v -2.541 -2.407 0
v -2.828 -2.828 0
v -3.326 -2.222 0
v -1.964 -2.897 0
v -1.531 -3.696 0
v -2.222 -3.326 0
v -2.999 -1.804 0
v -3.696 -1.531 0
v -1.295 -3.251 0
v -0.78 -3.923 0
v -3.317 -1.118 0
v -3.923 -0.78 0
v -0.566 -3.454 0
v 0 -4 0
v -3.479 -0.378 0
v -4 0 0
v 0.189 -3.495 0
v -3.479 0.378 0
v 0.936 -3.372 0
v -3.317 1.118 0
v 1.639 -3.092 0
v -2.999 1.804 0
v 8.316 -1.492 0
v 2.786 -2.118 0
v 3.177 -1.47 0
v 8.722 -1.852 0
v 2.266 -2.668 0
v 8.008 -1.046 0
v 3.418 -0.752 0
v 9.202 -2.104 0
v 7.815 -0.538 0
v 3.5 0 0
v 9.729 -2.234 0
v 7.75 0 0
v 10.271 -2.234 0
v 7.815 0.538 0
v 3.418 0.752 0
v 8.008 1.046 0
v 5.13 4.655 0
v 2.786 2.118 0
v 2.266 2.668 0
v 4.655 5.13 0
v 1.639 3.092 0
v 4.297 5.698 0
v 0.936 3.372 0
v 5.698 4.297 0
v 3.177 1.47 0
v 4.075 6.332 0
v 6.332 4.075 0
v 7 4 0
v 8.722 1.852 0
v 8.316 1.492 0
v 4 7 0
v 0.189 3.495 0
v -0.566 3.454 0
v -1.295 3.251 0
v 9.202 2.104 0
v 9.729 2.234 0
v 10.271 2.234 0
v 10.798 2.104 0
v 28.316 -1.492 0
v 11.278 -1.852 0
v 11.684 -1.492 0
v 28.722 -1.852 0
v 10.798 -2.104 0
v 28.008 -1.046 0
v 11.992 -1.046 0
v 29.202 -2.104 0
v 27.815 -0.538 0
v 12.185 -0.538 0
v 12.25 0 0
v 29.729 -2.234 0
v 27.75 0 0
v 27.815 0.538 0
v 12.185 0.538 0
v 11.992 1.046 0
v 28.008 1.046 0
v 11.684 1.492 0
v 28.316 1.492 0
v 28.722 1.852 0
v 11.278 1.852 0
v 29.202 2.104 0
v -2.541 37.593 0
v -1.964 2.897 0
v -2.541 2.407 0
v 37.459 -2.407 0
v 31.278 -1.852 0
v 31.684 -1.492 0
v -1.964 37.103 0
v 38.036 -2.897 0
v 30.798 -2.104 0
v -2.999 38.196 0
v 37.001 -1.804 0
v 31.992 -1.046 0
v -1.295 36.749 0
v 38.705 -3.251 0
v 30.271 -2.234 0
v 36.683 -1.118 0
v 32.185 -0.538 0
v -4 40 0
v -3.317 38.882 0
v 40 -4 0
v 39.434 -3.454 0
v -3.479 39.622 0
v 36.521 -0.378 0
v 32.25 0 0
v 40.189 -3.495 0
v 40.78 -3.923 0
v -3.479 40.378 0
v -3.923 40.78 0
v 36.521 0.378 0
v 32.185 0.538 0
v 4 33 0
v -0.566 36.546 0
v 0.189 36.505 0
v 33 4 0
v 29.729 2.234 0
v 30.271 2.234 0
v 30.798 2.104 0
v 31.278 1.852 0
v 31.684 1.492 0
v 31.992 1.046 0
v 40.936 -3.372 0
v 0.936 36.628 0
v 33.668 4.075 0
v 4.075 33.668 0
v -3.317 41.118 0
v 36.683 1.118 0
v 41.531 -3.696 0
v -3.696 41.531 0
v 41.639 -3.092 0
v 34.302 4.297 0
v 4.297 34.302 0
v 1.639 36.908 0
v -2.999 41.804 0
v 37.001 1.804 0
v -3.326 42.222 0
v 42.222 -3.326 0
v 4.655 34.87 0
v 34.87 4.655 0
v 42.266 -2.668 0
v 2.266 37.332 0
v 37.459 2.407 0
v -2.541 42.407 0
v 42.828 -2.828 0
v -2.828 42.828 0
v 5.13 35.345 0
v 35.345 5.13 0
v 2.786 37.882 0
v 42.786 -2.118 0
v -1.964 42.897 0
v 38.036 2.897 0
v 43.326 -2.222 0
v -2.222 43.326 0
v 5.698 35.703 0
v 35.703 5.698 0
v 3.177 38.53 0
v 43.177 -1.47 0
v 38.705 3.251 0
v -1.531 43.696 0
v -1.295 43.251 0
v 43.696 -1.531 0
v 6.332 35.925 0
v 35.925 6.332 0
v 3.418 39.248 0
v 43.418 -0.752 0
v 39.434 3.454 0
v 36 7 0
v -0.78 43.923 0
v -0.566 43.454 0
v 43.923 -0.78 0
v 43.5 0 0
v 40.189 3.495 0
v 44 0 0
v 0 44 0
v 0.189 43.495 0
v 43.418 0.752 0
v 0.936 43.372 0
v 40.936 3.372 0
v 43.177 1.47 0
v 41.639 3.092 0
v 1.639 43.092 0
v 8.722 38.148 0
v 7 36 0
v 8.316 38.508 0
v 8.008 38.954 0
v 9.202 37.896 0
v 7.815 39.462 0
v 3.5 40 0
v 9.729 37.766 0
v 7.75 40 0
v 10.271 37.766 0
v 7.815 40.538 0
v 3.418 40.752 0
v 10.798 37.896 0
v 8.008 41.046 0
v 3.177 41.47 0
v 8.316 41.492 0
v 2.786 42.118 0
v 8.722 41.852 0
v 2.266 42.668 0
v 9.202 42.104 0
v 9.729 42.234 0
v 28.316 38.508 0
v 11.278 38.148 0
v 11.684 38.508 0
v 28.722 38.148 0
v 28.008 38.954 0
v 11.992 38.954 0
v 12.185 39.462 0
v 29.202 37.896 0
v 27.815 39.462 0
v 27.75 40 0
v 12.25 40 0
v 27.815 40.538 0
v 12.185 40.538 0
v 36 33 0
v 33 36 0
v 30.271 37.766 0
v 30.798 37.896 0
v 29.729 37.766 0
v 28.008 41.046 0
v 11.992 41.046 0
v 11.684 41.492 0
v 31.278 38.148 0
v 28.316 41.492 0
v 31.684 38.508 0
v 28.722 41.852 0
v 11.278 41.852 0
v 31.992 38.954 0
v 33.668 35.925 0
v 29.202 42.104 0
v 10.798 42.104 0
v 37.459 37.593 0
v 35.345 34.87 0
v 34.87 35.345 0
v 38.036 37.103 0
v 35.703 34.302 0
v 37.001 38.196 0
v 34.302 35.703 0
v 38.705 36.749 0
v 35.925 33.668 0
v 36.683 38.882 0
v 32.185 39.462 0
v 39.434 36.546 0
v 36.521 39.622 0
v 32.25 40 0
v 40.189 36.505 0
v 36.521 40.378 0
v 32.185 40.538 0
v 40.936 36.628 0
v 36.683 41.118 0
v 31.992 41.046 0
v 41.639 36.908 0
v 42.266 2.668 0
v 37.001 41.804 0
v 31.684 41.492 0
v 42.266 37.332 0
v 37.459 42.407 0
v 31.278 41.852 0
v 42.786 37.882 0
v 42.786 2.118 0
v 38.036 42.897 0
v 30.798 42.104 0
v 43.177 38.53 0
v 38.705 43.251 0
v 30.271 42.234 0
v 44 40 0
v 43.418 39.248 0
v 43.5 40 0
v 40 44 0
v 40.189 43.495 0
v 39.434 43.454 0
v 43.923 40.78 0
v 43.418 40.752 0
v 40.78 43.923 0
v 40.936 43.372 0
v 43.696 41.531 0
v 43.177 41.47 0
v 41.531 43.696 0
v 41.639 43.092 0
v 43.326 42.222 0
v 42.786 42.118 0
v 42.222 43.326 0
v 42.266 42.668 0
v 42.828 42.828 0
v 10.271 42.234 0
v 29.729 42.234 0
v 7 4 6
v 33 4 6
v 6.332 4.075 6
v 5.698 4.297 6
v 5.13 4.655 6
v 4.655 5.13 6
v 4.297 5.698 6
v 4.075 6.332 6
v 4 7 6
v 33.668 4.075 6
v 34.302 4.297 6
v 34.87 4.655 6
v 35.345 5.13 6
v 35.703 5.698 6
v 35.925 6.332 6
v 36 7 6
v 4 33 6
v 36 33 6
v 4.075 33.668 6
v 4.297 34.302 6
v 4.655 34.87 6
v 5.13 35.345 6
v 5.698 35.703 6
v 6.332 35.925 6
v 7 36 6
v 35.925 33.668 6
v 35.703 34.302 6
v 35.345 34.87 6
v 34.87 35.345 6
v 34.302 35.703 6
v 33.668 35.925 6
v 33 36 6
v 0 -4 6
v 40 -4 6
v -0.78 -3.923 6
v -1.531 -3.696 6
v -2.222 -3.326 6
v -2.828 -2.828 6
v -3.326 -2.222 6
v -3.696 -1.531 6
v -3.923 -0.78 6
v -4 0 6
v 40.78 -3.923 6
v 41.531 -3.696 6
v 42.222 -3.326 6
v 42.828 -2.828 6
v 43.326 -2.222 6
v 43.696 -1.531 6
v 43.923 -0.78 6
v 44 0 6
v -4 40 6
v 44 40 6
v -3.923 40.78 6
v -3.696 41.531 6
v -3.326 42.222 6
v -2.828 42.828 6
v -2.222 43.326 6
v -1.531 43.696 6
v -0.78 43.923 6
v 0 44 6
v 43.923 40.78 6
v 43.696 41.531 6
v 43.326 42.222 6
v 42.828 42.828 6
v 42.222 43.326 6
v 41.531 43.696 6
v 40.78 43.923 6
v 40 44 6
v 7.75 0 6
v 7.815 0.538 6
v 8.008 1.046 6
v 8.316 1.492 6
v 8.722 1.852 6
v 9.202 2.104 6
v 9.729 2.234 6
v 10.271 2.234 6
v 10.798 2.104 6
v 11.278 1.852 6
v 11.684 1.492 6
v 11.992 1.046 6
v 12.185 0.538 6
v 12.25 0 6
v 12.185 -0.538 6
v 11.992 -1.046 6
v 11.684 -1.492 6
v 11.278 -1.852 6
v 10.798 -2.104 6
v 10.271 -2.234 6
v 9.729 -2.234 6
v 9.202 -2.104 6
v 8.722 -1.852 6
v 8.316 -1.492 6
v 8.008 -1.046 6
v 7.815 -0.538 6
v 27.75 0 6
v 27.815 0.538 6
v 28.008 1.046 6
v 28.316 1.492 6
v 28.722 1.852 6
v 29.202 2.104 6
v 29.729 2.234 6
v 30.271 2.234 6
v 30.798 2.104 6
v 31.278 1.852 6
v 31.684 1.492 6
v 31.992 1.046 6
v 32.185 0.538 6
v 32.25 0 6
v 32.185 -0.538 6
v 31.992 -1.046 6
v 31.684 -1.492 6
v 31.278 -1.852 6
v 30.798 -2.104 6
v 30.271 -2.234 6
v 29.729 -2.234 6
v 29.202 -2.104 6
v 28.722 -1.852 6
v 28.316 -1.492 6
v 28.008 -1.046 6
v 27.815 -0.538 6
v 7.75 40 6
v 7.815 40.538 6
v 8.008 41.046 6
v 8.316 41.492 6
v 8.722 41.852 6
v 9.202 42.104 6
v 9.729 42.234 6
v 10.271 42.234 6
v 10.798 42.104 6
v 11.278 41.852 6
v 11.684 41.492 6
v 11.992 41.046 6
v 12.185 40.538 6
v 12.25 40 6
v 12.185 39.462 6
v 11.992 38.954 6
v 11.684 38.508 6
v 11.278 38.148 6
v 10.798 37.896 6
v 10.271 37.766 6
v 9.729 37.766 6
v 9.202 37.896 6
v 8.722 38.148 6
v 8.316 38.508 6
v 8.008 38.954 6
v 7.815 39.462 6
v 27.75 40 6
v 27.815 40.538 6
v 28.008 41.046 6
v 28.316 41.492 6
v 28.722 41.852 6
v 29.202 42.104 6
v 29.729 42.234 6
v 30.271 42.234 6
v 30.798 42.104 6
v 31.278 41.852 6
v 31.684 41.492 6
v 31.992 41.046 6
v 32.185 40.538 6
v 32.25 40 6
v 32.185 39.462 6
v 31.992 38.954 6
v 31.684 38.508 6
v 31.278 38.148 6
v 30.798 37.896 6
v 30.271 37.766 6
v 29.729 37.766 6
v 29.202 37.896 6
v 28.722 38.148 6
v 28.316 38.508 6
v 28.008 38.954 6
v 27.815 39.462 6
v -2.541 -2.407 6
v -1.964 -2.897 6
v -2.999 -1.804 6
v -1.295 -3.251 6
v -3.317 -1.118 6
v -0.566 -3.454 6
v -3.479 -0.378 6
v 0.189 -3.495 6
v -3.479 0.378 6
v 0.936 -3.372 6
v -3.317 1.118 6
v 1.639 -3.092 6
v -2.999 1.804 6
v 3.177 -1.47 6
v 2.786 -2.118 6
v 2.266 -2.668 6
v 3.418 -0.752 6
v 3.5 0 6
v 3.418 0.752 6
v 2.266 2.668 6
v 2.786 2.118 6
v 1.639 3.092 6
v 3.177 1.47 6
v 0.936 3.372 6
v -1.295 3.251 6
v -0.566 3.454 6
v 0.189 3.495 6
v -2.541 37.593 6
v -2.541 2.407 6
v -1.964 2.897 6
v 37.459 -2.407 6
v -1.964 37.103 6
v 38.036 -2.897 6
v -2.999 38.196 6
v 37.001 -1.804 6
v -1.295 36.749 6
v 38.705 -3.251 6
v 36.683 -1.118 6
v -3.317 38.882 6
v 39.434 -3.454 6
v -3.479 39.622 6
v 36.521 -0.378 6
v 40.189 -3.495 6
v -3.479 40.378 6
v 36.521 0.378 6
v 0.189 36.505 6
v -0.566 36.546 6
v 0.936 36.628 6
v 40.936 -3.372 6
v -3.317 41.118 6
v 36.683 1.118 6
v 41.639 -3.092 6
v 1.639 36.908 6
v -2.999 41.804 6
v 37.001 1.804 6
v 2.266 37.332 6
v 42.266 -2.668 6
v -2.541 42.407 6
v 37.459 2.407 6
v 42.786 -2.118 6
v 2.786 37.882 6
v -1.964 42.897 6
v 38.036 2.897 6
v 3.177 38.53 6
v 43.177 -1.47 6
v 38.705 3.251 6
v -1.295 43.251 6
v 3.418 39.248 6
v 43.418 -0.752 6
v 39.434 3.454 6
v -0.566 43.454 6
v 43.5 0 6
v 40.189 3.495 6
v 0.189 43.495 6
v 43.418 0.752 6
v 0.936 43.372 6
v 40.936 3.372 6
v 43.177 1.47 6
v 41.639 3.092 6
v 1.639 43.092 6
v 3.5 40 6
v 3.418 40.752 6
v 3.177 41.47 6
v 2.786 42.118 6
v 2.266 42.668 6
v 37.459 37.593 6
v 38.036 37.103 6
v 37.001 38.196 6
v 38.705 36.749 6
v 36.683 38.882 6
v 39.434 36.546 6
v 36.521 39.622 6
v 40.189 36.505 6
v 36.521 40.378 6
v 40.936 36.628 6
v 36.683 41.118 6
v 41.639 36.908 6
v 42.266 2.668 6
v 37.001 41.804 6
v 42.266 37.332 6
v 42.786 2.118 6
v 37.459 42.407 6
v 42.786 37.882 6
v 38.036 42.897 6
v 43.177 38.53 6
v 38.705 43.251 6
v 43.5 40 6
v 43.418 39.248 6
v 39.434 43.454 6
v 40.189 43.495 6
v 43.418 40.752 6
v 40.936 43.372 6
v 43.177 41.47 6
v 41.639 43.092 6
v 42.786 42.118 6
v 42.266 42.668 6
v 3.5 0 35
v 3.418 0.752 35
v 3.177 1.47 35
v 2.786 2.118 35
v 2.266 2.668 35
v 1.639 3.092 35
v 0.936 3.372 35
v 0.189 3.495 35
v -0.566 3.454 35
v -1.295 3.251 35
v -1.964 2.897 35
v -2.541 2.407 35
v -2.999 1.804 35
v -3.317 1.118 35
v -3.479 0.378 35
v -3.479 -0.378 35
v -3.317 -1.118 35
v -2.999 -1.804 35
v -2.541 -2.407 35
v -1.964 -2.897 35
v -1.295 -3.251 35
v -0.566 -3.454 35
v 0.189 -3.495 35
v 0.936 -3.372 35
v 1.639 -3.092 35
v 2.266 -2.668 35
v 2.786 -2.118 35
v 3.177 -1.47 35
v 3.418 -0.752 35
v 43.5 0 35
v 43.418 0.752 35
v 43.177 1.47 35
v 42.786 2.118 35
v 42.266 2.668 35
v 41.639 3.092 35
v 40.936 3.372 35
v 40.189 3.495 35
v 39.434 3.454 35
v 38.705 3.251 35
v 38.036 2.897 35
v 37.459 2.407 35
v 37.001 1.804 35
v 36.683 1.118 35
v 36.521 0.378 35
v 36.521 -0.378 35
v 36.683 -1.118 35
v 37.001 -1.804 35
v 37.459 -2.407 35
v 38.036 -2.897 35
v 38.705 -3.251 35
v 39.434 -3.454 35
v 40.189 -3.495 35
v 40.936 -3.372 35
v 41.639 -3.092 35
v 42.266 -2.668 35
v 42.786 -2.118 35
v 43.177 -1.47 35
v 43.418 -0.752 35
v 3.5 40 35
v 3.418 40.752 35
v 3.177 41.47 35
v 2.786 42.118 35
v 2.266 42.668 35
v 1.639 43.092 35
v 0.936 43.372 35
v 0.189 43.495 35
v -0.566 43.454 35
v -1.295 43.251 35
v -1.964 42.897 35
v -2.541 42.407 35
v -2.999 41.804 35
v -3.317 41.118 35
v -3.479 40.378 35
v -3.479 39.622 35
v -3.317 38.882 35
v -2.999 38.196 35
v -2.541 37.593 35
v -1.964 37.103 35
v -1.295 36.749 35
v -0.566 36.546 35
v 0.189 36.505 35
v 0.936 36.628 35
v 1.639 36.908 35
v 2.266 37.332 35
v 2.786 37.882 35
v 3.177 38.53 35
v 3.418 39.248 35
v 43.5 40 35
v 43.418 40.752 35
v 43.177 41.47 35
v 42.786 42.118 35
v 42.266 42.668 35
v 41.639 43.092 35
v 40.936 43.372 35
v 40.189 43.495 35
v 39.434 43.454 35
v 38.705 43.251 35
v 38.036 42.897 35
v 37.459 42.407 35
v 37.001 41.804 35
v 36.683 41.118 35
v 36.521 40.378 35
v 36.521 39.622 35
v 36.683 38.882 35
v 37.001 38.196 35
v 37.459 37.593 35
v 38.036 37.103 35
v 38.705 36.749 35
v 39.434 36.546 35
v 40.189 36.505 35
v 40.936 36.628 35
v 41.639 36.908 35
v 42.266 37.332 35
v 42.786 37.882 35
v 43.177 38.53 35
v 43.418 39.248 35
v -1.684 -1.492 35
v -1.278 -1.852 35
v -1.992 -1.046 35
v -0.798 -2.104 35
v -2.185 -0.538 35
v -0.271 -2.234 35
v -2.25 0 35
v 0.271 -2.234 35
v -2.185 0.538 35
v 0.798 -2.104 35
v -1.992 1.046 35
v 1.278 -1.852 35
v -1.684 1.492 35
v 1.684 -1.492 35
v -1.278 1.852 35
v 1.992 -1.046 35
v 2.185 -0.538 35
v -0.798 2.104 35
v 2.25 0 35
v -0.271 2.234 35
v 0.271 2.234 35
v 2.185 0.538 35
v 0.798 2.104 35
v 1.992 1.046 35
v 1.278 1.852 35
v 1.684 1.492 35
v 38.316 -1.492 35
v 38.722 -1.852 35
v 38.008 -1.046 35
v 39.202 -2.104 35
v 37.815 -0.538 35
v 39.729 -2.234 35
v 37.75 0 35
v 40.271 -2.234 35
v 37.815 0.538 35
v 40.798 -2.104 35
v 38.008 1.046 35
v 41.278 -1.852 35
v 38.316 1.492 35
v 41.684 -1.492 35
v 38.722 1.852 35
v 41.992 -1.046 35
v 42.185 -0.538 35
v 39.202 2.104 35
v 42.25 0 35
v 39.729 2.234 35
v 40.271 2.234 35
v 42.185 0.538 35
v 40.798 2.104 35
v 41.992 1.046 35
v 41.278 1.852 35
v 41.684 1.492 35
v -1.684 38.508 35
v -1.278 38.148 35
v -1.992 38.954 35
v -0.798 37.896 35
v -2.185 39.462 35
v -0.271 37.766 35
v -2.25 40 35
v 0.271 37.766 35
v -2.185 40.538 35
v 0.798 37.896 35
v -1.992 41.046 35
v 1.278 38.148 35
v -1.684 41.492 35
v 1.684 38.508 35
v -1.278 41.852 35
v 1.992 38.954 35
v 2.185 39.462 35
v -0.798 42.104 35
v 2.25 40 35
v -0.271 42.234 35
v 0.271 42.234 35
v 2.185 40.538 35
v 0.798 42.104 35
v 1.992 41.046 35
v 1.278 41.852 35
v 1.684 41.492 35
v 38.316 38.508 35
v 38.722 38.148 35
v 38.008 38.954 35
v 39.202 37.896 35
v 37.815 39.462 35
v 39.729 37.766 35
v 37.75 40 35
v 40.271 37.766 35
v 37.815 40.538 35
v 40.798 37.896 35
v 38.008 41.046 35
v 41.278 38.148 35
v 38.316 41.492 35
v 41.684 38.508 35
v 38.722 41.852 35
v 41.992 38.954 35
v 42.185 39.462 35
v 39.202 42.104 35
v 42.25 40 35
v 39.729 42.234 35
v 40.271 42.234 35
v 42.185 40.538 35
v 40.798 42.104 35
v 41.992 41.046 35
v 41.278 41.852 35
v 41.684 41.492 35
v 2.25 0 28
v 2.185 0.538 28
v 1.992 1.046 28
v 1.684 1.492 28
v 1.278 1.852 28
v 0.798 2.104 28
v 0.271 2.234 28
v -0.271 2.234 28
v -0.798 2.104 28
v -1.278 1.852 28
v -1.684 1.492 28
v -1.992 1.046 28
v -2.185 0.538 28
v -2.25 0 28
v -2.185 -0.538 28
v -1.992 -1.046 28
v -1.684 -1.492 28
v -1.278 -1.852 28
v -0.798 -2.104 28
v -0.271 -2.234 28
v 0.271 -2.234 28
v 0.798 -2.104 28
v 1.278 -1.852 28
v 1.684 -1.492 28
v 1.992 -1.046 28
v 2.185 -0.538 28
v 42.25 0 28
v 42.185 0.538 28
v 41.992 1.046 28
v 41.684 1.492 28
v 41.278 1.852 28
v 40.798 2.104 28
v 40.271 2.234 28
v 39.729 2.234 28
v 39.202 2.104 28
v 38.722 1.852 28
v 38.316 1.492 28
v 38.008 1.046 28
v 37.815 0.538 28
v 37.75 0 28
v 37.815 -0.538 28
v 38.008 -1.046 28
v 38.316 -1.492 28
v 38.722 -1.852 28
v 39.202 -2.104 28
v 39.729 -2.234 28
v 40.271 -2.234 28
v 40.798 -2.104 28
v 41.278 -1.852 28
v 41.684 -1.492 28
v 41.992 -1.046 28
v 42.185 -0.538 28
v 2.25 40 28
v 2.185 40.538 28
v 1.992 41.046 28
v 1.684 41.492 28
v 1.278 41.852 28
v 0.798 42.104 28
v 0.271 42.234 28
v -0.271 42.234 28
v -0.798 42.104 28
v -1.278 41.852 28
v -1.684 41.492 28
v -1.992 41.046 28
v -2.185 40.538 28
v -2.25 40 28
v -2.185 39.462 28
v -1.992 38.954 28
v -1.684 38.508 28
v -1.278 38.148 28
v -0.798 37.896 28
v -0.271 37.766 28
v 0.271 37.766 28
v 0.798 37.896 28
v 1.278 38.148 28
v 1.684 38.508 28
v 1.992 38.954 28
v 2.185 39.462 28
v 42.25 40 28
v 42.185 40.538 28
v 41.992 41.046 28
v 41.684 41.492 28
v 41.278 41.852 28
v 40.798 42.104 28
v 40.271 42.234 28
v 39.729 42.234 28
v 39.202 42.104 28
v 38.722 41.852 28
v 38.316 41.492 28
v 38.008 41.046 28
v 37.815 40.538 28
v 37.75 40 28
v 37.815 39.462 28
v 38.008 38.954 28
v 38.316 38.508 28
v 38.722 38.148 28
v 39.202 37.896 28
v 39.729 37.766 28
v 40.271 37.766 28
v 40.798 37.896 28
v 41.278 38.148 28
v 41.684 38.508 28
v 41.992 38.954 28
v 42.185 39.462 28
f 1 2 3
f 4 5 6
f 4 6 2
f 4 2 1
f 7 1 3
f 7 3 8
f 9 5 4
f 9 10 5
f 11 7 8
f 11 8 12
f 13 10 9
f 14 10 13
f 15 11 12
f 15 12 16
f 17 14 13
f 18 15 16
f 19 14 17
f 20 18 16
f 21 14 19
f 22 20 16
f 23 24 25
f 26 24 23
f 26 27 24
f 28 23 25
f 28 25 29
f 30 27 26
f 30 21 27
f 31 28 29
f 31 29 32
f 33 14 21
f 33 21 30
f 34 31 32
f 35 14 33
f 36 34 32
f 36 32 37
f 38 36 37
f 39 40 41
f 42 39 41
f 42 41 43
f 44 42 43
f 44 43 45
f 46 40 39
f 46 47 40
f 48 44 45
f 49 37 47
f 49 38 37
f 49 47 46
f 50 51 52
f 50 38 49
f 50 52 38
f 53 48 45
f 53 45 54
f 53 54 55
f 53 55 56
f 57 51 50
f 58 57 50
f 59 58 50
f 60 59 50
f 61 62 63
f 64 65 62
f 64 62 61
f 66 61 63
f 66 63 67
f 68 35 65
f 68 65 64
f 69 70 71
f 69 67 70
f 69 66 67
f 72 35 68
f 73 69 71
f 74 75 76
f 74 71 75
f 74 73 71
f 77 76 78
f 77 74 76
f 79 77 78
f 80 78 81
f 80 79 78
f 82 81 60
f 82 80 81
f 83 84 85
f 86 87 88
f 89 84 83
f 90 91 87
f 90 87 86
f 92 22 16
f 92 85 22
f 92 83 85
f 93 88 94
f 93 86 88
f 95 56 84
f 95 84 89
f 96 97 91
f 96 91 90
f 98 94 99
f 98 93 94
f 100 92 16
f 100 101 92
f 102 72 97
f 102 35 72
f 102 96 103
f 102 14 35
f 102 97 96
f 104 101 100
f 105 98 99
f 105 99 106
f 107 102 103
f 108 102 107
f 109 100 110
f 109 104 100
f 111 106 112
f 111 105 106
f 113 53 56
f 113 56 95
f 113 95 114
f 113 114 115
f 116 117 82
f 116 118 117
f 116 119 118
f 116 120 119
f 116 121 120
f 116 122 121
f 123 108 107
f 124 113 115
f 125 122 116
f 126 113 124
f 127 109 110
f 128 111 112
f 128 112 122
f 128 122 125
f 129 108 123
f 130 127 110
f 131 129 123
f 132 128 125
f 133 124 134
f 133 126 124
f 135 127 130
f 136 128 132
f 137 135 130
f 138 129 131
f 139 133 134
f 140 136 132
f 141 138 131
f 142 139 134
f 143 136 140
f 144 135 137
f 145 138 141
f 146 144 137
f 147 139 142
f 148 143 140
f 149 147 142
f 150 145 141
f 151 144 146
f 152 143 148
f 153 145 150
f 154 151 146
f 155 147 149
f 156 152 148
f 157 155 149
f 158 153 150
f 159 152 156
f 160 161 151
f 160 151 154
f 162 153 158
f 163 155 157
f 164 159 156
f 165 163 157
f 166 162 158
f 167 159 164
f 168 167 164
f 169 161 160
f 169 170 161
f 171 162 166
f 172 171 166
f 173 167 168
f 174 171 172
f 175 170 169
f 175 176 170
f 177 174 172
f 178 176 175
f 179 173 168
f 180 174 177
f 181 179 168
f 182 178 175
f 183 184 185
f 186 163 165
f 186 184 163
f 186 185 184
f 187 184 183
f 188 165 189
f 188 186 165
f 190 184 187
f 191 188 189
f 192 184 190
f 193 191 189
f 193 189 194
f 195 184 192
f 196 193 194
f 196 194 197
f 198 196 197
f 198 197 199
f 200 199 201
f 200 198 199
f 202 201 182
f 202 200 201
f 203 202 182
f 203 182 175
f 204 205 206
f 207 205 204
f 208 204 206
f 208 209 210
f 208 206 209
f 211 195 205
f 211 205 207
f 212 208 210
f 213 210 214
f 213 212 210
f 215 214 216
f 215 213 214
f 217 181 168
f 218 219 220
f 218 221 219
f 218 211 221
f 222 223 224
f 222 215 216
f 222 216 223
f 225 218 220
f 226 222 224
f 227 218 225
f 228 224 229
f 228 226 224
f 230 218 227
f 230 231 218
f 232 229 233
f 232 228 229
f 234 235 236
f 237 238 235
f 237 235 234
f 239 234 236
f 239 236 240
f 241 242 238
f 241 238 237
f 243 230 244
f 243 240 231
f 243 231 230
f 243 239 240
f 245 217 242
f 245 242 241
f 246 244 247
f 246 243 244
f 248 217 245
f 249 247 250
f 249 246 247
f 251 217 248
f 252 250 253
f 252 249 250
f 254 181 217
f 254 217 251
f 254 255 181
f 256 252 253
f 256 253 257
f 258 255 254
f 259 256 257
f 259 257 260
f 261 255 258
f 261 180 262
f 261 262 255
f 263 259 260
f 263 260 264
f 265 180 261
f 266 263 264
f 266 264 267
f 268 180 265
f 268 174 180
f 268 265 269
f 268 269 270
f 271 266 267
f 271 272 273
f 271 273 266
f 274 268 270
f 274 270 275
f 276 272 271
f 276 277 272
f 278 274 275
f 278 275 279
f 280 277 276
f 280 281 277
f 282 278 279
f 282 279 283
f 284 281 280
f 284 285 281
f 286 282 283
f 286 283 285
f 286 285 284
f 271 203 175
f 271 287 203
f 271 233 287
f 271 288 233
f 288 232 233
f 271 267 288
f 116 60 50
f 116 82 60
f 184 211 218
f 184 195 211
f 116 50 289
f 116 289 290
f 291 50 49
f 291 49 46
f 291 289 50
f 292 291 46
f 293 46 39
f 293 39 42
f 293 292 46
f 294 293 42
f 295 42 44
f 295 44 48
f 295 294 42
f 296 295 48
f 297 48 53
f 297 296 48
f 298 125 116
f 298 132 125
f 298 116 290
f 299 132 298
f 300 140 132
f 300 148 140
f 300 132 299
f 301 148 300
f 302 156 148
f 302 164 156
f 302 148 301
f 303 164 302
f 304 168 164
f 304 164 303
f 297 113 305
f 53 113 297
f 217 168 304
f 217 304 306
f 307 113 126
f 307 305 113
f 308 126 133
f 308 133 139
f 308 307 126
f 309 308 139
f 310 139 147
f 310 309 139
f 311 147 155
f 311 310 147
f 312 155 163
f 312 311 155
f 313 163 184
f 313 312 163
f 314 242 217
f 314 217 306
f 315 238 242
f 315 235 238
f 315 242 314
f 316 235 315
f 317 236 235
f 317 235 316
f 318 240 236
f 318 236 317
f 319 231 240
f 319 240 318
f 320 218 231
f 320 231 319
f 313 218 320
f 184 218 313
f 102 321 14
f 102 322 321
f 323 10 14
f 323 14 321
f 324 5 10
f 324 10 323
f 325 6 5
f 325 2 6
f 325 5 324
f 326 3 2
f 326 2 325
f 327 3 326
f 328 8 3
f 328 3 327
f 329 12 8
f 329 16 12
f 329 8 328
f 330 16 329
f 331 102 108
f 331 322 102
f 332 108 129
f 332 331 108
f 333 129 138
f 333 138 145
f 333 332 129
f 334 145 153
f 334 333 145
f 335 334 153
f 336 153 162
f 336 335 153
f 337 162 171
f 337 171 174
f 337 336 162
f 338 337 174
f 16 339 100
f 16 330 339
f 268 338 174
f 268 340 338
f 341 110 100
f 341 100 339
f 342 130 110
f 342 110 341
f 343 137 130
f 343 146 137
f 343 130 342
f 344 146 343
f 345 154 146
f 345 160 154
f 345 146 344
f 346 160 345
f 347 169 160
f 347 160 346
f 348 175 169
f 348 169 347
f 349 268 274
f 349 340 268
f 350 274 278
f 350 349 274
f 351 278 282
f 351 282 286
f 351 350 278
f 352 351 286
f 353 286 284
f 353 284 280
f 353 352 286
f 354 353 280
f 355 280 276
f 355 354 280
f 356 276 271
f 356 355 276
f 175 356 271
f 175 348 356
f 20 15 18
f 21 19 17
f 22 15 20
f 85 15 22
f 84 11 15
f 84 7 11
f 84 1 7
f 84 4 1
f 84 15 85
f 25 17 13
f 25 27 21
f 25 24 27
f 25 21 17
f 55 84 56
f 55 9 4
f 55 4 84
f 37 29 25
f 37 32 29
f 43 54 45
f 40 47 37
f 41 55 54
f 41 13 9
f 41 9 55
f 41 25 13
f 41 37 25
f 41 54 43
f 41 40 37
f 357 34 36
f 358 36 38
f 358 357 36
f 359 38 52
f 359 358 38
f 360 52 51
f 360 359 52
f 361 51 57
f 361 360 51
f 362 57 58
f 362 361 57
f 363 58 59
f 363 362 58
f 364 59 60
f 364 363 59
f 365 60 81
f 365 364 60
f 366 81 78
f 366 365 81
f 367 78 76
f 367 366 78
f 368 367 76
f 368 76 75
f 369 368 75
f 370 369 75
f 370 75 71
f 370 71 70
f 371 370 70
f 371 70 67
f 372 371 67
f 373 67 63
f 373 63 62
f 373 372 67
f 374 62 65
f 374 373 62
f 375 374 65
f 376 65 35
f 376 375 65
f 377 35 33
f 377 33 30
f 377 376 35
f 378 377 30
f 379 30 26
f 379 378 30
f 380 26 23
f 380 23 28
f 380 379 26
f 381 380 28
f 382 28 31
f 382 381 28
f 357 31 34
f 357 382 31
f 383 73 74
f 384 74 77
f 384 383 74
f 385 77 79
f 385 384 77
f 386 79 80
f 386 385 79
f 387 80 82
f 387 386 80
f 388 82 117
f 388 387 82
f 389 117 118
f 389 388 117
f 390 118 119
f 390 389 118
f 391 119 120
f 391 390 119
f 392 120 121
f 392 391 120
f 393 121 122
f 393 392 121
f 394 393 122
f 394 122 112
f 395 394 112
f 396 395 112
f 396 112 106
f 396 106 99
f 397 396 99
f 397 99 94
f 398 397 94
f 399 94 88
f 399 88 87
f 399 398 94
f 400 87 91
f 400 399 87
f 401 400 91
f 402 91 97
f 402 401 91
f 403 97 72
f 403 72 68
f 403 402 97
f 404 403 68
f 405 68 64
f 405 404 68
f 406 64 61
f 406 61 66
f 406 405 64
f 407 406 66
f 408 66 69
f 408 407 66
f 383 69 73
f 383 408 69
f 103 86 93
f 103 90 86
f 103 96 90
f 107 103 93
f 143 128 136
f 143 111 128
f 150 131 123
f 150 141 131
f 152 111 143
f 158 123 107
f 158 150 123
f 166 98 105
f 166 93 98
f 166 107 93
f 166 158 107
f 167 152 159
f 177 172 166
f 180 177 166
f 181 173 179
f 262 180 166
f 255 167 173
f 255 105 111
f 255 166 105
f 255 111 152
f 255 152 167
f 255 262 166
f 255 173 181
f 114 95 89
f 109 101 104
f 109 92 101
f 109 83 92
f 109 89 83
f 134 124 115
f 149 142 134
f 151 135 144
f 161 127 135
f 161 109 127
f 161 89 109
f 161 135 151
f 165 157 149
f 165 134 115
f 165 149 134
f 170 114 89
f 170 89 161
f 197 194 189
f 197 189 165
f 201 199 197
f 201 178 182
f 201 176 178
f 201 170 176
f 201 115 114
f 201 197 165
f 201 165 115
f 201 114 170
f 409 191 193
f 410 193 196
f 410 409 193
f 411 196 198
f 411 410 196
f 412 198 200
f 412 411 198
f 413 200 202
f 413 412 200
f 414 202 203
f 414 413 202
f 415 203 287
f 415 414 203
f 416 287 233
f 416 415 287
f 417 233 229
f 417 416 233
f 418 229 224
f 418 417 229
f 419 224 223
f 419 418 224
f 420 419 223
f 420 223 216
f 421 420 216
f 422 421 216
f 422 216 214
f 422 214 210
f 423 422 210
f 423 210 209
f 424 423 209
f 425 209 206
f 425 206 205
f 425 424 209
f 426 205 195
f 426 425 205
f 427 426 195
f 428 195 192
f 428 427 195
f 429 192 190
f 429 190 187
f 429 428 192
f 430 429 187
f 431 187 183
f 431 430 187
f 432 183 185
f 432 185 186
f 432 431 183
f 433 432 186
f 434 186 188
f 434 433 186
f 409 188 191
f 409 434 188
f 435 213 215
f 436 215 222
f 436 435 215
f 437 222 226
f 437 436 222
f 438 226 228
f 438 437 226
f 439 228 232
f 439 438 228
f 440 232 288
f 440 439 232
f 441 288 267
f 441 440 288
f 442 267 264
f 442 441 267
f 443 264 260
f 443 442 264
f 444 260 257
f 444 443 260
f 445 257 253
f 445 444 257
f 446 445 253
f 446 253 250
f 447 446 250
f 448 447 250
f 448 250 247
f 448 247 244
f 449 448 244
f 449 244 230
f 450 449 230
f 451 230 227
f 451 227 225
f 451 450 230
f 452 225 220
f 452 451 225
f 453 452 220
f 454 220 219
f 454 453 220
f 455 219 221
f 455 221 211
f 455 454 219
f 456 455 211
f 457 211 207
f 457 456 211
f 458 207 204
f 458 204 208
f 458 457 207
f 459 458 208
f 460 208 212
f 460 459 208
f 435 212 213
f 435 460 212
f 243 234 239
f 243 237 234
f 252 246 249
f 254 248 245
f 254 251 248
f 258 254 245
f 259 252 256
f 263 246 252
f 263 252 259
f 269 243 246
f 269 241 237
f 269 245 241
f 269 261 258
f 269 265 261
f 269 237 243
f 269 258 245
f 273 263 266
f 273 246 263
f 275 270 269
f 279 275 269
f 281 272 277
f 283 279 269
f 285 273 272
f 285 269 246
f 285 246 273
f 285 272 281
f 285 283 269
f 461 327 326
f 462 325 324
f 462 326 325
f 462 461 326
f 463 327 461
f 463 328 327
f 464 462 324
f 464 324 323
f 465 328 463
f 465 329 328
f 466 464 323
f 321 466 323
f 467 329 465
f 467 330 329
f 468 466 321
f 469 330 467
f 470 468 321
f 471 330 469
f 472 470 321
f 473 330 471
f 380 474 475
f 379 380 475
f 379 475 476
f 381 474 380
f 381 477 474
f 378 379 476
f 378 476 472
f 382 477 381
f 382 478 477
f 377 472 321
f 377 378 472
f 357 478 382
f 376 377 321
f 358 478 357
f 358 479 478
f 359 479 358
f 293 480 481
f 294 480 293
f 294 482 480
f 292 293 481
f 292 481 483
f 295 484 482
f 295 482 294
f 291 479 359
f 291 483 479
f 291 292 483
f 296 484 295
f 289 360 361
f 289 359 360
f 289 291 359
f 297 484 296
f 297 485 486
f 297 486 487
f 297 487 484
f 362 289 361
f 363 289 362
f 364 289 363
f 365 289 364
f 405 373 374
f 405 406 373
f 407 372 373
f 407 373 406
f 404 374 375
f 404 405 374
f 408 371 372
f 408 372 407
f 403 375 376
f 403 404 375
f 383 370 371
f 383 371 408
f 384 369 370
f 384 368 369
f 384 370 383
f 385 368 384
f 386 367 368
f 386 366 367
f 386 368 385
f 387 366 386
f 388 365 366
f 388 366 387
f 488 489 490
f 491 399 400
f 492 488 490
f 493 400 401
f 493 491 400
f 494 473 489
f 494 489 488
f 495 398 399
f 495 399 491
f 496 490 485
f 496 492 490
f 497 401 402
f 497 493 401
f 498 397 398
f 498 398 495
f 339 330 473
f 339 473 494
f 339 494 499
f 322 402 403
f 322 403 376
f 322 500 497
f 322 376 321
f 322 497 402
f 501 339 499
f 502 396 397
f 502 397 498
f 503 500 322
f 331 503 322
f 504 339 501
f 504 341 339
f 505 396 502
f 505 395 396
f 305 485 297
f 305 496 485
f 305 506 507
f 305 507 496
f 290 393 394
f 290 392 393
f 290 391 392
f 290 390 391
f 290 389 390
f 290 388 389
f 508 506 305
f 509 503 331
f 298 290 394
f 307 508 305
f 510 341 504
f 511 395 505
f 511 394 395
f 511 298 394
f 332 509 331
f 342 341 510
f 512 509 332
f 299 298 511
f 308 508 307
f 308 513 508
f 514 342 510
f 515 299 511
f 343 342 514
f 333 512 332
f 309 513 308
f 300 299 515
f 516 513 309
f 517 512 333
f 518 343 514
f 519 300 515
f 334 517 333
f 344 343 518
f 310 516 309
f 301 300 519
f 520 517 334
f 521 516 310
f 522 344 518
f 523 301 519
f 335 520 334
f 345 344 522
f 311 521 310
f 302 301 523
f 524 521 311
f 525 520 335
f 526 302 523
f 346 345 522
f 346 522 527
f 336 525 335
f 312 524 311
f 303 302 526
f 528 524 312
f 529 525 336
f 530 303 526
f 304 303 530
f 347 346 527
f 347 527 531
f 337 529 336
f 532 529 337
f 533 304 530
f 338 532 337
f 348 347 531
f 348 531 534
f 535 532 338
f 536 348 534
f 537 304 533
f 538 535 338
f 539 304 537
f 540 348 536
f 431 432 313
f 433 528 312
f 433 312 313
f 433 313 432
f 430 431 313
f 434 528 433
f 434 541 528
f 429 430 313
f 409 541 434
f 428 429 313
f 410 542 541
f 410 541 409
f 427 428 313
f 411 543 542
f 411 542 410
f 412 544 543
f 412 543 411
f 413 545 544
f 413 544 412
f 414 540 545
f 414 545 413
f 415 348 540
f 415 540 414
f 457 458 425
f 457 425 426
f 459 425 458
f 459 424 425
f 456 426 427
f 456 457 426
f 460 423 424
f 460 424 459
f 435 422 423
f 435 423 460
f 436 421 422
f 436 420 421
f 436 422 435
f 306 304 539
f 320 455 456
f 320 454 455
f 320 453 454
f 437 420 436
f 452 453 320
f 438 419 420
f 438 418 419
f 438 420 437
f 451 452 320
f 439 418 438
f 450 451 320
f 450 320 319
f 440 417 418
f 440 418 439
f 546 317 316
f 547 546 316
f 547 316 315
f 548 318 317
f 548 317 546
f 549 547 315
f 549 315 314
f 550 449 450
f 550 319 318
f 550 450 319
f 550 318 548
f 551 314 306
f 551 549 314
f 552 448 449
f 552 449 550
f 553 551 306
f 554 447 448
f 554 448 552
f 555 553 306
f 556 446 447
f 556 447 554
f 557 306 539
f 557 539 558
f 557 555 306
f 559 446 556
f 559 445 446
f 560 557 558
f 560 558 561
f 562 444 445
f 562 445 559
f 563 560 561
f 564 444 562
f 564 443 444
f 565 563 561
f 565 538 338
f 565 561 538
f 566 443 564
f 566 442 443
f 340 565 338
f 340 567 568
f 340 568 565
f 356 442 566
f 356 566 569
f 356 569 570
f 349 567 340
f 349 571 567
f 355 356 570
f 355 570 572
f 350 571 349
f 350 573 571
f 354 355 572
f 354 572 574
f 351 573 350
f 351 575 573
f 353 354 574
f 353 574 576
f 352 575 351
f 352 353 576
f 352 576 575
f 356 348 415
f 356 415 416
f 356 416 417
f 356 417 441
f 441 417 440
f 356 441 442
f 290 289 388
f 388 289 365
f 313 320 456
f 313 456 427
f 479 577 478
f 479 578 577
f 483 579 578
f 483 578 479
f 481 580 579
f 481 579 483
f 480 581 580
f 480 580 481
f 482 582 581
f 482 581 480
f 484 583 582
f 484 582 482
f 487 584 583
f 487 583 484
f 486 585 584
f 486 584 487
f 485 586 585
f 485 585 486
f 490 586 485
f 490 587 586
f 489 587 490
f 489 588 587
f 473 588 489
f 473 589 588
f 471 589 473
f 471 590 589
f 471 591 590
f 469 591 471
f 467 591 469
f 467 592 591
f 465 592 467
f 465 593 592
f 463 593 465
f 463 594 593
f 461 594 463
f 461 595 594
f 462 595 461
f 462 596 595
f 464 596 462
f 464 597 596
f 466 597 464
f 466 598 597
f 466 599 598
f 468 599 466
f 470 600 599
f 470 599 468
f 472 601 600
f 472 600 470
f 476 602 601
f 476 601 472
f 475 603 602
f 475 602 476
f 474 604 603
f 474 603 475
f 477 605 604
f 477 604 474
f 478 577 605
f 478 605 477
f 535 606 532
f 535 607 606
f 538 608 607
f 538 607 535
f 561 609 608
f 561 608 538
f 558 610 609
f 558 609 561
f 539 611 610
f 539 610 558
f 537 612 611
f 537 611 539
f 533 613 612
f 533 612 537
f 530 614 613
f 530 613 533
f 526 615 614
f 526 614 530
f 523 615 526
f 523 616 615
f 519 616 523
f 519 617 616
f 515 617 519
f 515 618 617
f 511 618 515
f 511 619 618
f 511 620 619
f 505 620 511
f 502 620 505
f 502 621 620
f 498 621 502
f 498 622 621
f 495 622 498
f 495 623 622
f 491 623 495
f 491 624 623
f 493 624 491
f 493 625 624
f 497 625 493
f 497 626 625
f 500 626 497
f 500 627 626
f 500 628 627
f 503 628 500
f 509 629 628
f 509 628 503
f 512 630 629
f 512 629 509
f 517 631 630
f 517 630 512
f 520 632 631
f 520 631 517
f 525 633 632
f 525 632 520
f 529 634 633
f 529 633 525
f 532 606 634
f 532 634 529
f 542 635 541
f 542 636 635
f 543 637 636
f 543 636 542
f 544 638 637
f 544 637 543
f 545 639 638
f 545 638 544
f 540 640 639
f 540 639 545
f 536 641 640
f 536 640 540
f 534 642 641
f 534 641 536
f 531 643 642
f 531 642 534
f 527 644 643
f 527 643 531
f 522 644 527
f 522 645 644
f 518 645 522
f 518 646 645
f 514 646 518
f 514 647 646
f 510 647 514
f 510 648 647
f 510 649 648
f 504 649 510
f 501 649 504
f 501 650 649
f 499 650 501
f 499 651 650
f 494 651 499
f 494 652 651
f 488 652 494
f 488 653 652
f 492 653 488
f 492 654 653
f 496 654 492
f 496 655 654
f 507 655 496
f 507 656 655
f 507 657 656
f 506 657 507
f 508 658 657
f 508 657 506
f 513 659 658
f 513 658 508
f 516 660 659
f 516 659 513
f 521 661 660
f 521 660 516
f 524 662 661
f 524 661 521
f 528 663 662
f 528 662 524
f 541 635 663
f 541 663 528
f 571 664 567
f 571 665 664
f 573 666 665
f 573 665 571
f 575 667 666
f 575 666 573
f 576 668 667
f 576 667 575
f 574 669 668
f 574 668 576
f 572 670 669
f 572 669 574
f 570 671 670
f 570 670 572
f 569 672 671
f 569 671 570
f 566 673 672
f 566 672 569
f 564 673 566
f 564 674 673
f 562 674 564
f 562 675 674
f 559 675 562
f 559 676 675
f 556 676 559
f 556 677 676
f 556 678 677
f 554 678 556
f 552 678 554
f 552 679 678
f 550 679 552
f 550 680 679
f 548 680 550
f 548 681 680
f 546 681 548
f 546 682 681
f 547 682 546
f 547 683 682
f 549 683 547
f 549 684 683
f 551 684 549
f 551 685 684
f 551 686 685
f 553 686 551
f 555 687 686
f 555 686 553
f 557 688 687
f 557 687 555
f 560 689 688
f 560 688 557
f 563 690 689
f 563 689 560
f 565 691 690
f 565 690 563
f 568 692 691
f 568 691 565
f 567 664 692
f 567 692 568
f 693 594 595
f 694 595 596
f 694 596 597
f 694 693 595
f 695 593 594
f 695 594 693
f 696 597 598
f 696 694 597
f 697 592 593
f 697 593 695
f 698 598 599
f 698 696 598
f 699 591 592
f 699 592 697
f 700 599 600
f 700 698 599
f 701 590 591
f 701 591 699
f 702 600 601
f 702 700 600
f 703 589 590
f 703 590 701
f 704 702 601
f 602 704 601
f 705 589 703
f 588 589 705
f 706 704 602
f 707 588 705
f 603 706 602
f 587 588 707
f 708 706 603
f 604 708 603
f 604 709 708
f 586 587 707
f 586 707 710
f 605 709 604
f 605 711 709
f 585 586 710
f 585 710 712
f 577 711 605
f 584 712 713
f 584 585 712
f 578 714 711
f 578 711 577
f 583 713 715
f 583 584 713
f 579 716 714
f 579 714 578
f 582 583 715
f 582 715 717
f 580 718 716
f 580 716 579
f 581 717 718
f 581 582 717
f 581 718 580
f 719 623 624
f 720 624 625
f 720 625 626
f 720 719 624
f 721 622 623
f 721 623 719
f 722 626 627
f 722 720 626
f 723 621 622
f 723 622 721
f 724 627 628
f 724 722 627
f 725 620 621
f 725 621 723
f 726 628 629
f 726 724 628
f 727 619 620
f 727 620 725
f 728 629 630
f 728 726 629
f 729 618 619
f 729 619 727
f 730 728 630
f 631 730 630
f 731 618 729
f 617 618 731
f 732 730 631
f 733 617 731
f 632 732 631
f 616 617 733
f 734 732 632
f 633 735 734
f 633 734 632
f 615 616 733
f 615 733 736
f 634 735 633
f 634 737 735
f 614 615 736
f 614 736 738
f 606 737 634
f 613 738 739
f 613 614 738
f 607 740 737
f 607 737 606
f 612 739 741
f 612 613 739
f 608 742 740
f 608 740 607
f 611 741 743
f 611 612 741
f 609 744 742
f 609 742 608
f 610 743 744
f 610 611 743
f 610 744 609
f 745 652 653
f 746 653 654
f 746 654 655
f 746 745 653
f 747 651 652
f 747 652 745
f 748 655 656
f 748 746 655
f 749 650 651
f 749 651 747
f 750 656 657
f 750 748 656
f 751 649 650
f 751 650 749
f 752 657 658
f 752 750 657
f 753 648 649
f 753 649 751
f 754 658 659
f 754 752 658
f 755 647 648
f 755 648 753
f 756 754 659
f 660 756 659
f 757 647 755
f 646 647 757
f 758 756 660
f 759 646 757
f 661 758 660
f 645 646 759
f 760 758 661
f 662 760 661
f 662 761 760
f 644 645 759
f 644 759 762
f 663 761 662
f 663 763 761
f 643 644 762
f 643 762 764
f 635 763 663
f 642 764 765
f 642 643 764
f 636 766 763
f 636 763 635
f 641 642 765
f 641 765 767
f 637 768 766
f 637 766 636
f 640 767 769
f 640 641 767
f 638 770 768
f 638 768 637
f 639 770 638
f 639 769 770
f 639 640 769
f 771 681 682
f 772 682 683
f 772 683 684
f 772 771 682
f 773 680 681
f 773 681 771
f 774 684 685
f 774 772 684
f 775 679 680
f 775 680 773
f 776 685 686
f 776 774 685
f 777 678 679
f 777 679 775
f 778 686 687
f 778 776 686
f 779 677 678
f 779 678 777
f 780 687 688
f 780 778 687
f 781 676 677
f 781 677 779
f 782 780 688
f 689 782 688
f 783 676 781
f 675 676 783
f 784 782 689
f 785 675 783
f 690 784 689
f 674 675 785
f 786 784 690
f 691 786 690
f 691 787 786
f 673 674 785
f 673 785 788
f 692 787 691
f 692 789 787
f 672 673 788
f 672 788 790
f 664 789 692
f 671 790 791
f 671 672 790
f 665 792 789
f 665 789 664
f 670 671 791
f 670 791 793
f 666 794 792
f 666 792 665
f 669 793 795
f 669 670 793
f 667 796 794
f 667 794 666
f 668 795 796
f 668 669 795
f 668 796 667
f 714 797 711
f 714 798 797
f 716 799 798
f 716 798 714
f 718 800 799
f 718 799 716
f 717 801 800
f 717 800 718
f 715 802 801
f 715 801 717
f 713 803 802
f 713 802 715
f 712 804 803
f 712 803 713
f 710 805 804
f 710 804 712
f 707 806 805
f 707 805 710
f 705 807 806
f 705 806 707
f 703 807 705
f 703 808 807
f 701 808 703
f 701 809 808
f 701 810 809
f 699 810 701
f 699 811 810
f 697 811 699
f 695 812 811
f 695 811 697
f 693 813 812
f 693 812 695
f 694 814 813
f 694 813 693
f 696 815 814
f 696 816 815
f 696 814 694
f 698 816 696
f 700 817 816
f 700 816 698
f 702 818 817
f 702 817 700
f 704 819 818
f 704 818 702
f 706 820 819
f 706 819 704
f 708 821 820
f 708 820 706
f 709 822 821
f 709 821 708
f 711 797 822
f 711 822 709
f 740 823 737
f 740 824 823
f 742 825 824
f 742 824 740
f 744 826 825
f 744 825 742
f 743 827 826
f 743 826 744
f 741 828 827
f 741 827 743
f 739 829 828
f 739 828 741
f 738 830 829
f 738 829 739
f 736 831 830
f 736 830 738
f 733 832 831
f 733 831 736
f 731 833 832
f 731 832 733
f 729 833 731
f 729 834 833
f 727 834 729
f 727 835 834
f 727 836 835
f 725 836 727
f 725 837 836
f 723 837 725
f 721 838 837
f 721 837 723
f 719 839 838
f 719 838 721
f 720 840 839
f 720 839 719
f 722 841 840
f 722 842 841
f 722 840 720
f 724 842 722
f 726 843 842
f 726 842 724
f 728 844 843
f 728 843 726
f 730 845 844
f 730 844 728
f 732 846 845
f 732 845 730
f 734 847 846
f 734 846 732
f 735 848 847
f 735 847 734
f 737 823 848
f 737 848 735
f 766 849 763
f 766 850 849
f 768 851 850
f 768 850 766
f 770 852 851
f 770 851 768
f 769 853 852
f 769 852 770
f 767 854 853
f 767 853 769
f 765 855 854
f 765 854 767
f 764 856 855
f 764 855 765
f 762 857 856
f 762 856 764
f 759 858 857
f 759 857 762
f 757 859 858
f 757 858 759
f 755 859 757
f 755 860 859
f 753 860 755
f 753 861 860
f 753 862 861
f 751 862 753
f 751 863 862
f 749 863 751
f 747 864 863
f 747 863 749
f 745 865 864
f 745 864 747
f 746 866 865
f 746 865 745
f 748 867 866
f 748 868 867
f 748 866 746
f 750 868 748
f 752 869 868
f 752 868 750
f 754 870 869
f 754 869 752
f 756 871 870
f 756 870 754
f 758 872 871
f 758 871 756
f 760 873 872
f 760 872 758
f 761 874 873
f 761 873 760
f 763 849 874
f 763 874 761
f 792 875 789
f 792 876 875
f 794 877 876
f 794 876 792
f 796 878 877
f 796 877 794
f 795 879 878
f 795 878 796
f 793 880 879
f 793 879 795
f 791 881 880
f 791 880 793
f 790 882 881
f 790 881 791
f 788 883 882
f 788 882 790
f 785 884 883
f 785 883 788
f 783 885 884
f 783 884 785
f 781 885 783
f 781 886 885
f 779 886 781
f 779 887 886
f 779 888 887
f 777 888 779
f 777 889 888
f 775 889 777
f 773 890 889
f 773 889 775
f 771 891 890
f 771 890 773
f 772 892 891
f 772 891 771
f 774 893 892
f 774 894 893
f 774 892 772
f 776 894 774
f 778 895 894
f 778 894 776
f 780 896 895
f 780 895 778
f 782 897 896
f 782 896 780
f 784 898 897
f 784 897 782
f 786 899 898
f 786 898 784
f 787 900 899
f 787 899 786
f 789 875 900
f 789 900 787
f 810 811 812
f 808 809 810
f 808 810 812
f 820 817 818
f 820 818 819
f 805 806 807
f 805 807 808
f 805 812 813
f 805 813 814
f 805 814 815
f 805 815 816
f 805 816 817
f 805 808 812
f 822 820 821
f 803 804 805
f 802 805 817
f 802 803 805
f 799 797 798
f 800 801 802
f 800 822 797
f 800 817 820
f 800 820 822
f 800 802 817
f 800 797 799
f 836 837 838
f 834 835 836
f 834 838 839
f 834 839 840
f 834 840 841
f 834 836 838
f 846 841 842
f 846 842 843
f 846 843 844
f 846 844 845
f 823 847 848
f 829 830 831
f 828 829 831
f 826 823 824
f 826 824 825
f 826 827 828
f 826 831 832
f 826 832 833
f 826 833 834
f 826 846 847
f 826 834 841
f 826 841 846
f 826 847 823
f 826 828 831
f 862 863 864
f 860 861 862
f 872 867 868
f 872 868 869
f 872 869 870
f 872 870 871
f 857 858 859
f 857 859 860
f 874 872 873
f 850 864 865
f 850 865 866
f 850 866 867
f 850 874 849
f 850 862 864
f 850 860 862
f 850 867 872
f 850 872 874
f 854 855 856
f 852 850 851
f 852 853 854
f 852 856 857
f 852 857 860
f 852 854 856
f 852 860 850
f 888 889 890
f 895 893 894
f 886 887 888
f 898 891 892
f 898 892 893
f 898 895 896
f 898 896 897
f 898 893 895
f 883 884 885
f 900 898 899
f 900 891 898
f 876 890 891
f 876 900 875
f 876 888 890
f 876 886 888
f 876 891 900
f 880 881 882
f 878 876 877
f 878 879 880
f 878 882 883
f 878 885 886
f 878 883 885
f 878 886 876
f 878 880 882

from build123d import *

# Parameters (mm, degrees)
SKETCH_R                     = 3.5
PAD_DEPTH                    = 35
SKETCH002_W                  = 48
SKETCH002_H                  = 48
SKETCH002_W_2                = 32
SKETCH002_H_2                = 32
PAD001_DEPTH                 = 6
SKETCH001_R                  = 2.25
POCKET_DEPTH                 = 7
SKETCH_LINEARPATTERN_2_R     = 3.5
PAD_LINEARPATTERN_2_DEPTH    = 35
SKETCH001_LINEARPATTERN_2_R  = 2.25
POCKET_LINEARPATTERN_2_DEPTH = 7
LINEARPATTERN001_COUNT       = 2
LINEARPATTERN001_PITCH       = 40
SKETCH003_R                  = 2.25
HOLE_DEPTH                   = 35.001
FILLET_R                     = 4
FILLET001_R                  = 3


with BuildPart() as part:
    # Sketch → Pad (new body)
    with BuildSketch(Plane.XY):
        Circle(SKETCH_R)
    pad = extrude(amount=PAD_DEPTH)

    # Sketch002 → Pad001 (join)
    with BuildSketch(Plane.XY):
        with Locations((20, 20)):
            Rectangle(SKETCH002_W, SKETCH002_H)
        with Locations((20, 20)):
            Rectangle(SKETCH002_W_2, SKETCH002_H_2, mode=Mode.SUBTRACT)
    extrude(amount=PAD001_DEPTH)

    # Sketch001 → Pocket (cut)
    with BuildSketch(Plane.XY.offset(35)):
        Circle(SKETCH001_R)
    pocket = extrude(amount=-POCKET_DEPTH, mode=Mode.SUBTRACT)

    # Sketch LinearPattern 2 → Pad LinearPattern 2 (add)
    with BuildSketch(Plane(origin=(40, 0, 0), x_dir=(1, 0, 0), z_dir=(0, 0, 1))):
        Circle(SKETCH_LINEARPATTERN_2_R)
    pad_linearpattern_2 = extrude(amount=PAD_LINEARPATTERN_2_DEPTH)

    # Sketch001 LinearPattern 2 → Pocket LinearPattern 2 (cut)
    with BuildSketch(Plane(origin=(40, 0, 35), x_dir=(1, 0, 0), z_dir=(0, 0, 1))):
        Circle(SKETCH001_LINEARPATTERN_2_R)
    pocket_linearpattern_2 = extrude(amount=-POCKET_LINEARPATTERN_2_DEPTH, mode=Mode.SUBTRACT)

    # LinearPattern001: Pad, Pocket, Pad LinearPattern 2, Pocket LinearPattern 2 ×2
    with Locations(*[(0, i * LINEARPATTERN001_PITCH, 0) for i in range(1, LINEARPATTERN001_COUNT)]):
        add(pad)
        add(pocket, mode=Mode.SUBTRACT)
        add(pad_linearpattern_2)
        add(pocket_linearpattern_2, mode=Mode.SUBTRACT)

    # Sketch003 → Hole (cut, through all)
    with BuildSketch(Plane.XY):
        with Locations((10, 40)):
            Circle(SKETCH003_R)
        with Locations((30, 40)):
            Circle(SKETCH003_R)
        with Locations((30, 0)):
            Circle(SKETCH003_R)
        with Locations((10, 0)):
            Circle(SKETCH003_R)
    extrude(amount=HOLE_DEPTH, mode=Mode.SUBTRACT)

    # Fillet
    fillet_edges = [part.edges().sort_by_distance(p)[0] for p in [
        (-4, -4, 3),
        (44, -4, 3),
        (-4, 44, 3),
        (44, 44, 3),
    ]]
    fillet(fillet_edges, radius=FILLET_R)

    # Fillet001
    fillet001_edges = [part.edges().sort_by_distance(p)[0] for p in [
        (4, 36, 3),
        (36, 36, 3),
        (36, 4, 3),
        (4, 4, 3),
    ]]
    fillet(fillet001_edges, radius=FILLET001_R)


solid = part.part
